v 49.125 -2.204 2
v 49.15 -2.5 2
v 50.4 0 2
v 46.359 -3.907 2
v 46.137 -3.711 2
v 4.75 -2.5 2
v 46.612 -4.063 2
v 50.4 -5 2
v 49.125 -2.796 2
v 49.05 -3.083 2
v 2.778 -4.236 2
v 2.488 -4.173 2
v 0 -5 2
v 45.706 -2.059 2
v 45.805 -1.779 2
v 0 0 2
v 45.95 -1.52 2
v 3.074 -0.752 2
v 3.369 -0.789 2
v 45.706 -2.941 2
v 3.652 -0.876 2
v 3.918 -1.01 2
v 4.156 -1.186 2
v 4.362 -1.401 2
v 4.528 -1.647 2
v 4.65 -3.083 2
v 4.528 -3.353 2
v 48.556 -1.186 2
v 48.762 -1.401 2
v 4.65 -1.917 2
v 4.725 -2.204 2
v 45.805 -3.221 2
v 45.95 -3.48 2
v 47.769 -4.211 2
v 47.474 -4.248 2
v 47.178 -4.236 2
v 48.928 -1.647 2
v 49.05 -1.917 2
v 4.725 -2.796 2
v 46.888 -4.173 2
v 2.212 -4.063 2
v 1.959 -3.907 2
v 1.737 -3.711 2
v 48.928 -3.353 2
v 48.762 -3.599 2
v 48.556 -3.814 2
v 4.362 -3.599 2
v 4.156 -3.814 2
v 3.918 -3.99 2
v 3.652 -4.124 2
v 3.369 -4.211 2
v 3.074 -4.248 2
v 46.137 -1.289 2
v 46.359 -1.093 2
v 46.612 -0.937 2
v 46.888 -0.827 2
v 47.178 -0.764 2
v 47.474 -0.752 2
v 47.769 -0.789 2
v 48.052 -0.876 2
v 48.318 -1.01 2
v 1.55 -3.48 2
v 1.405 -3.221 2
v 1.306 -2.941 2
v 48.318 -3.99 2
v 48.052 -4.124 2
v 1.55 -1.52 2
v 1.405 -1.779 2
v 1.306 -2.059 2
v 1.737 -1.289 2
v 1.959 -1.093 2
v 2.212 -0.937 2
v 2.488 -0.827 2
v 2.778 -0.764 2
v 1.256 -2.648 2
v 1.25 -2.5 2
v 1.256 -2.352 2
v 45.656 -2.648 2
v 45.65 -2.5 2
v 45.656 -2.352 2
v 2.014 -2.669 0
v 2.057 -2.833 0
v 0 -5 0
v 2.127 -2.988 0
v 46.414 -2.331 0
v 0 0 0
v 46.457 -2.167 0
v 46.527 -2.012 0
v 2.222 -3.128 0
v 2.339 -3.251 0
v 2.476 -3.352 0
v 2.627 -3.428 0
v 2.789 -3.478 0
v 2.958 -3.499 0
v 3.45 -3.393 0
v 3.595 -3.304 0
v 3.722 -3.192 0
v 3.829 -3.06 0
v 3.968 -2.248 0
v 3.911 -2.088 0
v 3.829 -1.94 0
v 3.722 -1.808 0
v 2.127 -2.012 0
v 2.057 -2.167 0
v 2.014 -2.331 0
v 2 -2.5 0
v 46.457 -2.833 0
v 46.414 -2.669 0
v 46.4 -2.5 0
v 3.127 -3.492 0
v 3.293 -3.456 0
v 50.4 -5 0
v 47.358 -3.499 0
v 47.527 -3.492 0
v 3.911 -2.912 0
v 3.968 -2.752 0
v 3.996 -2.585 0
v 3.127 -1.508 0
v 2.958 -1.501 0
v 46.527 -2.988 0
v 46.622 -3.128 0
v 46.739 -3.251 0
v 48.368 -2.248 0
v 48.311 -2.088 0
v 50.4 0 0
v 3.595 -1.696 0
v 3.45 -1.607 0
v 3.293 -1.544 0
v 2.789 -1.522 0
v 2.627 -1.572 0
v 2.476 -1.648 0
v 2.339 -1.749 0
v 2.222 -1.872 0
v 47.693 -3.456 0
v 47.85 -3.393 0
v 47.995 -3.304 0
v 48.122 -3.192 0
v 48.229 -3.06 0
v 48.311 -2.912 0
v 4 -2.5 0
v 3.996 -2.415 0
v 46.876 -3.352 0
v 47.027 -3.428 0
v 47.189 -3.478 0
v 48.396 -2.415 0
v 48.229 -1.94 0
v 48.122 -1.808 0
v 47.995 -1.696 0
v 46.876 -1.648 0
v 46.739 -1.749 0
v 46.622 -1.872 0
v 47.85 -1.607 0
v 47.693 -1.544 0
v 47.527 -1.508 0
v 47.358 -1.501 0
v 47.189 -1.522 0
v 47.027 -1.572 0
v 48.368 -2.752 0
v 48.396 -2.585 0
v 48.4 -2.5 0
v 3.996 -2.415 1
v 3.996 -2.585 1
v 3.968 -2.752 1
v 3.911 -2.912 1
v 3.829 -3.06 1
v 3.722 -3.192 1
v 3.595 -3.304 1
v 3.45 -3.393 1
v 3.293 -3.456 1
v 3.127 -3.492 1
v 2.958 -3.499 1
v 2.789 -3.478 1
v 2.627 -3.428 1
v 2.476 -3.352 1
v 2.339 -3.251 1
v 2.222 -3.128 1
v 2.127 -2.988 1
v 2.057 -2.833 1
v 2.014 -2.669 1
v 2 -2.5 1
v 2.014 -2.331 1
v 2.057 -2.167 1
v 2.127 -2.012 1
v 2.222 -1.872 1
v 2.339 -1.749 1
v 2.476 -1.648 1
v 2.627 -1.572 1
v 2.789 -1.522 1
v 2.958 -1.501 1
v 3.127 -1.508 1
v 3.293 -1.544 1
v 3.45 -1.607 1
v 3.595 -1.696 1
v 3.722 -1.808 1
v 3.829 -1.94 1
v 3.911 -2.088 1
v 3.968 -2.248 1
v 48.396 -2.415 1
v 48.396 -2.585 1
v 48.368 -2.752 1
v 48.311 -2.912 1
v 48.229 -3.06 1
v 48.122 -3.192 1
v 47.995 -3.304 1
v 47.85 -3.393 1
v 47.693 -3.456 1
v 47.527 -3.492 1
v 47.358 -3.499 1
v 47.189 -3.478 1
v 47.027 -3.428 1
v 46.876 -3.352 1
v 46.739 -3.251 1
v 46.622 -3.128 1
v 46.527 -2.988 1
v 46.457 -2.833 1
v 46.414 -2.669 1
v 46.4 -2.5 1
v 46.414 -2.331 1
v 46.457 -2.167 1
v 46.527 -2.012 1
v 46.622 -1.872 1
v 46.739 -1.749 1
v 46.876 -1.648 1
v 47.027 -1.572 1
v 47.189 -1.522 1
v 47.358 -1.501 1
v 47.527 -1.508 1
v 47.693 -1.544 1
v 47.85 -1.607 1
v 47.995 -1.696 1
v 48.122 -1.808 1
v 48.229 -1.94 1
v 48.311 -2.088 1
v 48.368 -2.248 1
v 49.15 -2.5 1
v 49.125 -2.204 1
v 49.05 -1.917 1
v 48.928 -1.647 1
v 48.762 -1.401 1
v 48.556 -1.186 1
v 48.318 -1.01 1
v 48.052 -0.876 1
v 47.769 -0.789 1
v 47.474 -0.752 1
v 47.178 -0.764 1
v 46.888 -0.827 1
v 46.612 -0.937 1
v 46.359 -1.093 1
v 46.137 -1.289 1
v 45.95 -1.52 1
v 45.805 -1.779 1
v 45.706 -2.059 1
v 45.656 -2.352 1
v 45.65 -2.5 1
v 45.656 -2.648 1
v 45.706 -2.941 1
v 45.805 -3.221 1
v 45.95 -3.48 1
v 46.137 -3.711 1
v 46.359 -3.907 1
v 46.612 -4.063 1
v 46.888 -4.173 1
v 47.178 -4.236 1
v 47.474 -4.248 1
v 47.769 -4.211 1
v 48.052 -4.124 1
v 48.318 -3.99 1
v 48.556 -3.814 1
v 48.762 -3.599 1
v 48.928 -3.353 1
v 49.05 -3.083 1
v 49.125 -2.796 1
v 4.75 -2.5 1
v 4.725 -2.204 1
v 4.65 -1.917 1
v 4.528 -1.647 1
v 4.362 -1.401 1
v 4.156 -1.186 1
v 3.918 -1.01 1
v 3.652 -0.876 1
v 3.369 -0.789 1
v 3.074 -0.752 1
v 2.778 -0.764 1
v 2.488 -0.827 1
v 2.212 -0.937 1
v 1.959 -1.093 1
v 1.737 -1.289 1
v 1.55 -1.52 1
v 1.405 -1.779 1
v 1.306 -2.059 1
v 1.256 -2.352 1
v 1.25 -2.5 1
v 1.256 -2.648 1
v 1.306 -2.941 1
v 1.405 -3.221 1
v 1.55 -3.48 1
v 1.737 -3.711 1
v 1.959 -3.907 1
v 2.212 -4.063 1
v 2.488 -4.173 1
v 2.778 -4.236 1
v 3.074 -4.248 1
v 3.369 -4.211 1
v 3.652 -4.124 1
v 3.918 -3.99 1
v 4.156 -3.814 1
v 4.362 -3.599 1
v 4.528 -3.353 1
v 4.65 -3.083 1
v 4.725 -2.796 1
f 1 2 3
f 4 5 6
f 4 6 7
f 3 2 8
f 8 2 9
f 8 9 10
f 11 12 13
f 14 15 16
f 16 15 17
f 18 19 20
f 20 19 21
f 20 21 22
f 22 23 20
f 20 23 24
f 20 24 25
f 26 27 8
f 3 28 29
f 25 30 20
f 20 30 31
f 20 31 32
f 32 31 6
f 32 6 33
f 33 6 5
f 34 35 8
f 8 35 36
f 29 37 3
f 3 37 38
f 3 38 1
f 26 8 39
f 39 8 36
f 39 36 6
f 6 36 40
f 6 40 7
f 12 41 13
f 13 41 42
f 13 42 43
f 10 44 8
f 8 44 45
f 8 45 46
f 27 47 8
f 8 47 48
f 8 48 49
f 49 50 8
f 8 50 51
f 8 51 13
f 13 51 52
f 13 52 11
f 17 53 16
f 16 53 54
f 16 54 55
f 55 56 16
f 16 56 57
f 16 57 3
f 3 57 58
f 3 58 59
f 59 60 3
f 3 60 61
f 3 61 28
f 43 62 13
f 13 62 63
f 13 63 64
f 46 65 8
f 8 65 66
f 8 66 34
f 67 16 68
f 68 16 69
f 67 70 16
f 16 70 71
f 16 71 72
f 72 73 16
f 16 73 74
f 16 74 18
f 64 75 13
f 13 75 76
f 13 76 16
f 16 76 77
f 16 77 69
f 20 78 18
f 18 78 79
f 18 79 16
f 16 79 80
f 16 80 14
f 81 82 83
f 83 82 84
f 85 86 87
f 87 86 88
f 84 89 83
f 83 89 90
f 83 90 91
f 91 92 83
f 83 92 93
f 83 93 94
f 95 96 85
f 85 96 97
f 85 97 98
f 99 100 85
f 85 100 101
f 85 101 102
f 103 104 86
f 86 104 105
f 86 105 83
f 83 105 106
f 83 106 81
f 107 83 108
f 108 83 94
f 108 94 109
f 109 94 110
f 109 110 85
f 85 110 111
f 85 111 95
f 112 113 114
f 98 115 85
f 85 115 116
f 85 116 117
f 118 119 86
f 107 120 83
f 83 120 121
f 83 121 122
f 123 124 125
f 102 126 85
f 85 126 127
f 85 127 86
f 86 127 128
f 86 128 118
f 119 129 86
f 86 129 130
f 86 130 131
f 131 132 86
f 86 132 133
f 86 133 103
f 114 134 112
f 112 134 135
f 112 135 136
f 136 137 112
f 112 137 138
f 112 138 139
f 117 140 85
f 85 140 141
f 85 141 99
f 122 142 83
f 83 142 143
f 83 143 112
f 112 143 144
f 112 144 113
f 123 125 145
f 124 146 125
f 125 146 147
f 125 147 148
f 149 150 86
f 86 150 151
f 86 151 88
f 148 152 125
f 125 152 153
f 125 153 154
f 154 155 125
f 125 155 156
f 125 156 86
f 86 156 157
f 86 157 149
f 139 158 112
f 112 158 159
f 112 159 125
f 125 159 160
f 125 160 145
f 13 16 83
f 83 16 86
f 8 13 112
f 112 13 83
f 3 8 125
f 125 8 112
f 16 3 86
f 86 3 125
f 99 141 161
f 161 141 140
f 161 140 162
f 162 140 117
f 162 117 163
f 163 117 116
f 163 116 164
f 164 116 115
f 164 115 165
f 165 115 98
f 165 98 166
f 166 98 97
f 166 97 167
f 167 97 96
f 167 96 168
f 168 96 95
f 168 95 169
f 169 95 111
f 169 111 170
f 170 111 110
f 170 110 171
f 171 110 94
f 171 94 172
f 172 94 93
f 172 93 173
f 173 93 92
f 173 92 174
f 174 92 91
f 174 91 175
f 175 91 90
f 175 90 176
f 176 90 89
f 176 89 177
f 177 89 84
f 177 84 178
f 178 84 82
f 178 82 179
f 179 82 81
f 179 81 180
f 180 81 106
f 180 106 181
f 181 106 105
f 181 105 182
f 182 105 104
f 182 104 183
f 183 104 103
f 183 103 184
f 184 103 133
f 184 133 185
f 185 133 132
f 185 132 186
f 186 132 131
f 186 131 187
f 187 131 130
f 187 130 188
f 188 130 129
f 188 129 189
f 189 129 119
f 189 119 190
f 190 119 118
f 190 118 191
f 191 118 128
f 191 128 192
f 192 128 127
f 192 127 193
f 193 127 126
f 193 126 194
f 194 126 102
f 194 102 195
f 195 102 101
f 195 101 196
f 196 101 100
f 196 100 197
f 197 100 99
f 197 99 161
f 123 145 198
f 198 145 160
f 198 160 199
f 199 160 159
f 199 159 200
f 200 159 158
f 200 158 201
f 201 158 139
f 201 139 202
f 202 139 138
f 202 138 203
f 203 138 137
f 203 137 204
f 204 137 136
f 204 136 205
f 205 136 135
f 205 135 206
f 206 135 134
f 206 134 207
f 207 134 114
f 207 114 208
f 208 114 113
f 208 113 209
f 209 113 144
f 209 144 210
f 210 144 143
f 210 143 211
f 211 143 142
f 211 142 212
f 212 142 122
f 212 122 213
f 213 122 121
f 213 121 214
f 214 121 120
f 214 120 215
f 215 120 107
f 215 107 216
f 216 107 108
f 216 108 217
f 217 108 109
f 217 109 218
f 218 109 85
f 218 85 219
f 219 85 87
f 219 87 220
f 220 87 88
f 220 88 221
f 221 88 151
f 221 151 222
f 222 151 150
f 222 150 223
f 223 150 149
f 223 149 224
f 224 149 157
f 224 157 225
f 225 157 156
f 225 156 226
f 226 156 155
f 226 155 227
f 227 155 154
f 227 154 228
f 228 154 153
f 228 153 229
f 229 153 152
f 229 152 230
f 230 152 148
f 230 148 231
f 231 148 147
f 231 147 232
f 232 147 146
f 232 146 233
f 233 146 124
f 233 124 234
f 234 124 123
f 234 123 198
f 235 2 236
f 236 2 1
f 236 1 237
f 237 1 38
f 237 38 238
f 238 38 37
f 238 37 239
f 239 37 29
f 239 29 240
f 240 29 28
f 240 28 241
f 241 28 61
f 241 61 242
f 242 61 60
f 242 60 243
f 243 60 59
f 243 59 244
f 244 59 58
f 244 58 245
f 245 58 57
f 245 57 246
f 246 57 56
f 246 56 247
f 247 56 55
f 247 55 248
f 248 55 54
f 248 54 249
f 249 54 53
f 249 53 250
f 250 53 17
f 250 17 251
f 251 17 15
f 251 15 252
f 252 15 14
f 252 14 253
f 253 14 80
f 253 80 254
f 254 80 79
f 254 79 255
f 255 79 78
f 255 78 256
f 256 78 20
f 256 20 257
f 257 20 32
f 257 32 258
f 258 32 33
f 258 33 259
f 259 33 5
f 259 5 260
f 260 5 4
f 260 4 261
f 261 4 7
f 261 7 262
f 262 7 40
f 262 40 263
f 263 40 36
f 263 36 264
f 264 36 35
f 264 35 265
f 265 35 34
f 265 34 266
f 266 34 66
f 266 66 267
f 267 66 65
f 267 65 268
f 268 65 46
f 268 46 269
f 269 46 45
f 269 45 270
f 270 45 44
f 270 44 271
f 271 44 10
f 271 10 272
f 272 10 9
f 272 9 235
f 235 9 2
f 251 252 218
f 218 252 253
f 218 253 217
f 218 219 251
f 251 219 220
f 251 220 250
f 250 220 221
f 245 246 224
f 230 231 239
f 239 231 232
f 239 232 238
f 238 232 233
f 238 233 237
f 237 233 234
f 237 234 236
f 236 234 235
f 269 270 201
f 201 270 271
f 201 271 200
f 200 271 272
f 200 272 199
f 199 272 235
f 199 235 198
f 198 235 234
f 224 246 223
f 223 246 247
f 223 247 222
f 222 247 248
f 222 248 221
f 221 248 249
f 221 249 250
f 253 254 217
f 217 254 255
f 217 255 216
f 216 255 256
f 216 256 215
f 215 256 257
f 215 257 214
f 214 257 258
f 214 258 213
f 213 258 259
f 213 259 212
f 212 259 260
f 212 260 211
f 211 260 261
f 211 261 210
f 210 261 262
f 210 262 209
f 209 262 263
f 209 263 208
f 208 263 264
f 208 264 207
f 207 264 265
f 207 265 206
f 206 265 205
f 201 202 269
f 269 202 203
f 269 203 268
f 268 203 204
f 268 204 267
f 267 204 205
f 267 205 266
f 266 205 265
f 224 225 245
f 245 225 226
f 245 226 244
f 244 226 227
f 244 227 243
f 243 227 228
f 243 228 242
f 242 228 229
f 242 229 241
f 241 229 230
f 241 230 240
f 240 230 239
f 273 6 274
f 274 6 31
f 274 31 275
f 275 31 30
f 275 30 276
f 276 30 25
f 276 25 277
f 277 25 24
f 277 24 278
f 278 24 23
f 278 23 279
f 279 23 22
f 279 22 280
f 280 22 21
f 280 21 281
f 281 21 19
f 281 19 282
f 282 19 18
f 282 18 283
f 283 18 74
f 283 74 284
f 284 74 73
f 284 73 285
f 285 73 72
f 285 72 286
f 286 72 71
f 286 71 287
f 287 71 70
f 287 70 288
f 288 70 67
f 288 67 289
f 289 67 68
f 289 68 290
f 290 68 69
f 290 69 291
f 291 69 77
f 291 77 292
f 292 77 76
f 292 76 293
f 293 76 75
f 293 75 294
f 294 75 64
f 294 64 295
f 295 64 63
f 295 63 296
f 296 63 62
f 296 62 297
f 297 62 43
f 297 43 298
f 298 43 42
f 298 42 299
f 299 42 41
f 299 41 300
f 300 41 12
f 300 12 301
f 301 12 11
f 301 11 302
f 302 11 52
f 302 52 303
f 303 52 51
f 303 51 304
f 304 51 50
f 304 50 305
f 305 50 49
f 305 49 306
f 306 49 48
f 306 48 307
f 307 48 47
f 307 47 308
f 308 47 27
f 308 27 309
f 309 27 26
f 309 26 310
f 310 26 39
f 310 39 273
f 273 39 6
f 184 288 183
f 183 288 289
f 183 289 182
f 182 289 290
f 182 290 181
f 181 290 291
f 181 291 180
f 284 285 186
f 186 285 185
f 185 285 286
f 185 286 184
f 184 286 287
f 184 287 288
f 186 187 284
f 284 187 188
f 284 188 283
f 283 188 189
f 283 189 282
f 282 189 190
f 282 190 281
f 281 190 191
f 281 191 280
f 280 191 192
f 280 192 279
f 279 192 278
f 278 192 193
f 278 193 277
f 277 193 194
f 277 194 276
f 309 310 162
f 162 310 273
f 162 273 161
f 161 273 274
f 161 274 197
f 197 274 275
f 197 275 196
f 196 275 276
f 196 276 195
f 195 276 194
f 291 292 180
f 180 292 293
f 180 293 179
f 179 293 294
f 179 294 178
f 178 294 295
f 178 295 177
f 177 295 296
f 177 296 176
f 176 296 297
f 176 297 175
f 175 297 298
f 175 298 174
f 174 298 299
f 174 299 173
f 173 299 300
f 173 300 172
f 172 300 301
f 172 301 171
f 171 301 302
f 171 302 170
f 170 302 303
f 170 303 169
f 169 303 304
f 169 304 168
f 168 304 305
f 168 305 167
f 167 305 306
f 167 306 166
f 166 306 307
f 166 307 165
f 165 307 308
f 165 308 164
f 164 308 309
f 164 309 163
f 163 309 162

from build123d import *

# Parameters (mm, degrees)
SKETCH_1_W          = 50.4
SKETCH_1_H          = 5
SKETCH_1_R          = 1
EXTRUDE_1_DEPTH     = 2
CUT_EXTRUDE_START   = 2
SKETCH_1_8_R        = 1.75
CUT_EXTRUDE_2_DEPTH = 1


with BuildPart() as part:
    # 草图1 → 凸台-拉伸1 (new body)
    with BuildSketch(Plane.XY):
        with Locations((25.2, -2.5)):
            Rectangle(SKETCH_1_W, SKETCH_1_H)
        with Locations((3, -2.5)):
            Circle(SKETCH_1_R, mode=Mode.SUBTRACT)
        with Locations((47.4, -2.5)):
            Circle(SKETCH_1_R, mode=Mode.SUBTRACT)
    extrude(amount=EXTRUDE_1_DEPTH)

    # 草图1<8> → 切除-拉伸2 (cut)
    with BuildSketch(Plane.XY.offset(CUT_EXTRUDE_START)):
        with Locations(Location((3, -2.5, 0), (0, 0, 180))):
            Circle(SKETCH_1_8_R)
        with Locations(Location((47.4, -2.5, 0), (0, 0, 180))):
            Circle(SKETCH_1_8_R)
    extrude(amount=-CUT_EXTRUDE_2_DEPTH, mode=Mode.SUBTRACT)


solid = part.part
